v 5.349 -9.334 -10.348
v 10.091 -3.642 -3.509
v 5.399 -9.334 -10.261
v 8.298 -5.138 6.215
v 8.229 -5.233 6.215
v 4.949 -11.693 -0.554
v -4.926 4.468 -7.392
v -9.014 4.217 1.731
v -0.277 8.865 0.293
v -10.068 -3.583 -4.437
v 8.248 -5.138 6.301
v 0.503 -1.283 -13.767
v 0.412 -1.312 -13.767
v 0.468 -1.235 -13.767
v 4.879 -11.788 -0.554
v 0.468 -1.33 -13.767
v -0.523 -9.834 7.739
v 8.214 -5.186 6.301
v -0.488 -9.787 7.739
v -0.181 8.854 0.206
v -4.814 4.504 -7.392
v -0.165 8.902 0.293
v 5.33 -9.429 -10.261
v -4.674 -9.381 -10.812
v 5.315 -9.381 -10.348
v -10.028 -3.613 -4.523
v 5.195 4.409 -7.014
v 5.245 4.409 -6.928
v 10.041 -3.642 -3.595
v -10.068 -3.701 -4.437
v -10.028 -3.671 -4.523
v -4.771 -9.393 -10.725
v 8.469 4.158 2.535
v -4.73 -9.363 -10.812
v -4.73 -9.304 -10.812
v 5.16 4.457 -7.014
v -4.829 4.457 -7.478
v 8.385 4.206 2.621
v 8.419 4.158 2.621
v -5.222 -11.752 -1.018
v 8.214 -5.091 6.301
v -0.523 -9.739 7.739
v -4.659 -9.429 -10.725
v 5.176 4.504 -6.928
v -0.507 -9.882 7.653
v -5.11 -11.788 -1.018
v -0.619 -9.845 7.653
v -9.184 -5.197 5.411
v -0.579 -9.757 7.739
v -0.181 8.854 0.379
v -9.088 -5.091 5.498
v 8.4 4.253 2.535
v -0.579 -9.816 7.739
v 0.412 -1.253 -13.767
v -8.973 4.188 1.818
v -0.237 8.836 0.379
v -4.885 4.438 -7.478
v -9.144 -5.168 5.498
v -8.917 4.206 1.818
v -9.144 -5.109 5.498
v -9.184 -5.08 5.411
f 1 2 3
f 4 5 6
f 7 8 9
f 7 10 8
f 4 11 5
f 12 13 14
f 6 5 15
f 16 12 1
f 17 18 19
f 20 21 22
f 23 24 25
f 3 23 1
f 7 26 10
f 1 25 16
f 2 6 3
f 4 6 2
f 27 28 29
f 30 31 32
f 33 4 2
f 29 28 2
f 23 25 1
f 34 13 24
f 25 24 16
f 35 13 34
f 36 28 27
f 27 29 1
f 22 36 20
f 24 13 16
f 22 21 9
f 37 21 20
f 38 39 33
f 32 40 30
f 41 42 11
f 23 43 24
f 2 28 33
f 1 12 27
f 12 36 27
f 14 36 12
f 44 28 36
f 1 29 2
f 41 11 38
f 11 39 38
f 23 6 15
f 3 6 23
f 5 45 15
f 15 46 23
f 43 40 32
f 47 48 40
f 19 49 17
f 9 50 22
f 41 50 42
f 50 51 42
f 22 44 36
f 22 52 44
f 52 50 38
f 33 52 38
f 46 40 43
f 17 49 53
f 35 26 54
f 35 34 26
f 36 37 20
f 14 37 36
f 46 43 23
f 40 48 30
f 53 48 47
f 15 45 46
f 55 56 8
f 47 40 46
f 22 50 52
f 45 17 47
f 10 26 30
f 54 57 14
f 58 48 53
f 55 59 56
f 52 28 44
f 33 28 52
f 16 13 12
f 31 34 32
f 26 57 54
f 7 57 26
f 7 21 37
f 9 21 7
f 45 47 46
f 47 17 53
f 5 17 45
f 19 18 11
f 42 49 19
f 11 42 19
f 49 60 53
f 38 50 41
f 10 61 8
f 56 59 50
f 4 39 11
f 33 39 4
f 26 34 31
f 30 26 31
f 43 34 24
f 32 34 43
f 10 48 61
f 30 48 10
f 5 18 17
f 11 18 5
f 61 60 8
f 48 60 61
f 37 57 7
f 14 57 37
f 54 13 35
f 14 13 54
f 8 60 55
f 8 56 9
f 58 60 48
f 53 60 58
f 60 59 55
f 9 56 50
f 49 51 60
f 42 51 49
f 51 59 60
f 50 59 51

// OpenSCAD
// Auto-generated OpenSCAD file

    inner_points = 10*[[-0.9987270749614695, -0.364205811638524, -0.4436890860803185], [0.9991182313764295, -0.36420581163853794, -0.35087673806764436], [-0.4844601077687184, 0.4409094125179242, -0.7391869071989888], [-0.5140713889852709, -1.1693210357949793, -0.10178509095531102], [0.5144625454002312, 0.4409094125179172, -0.6927807331926518], [0.4848512641836786, -1.1693210357949864, -0.055378916948973976], [-0.8932613027512826, 0.41583146142721766, 0.17309193139693055], [-0.9103573839327088, -0.513835521363569, 0.5410960415871743], [0.8369234853688419, 0.41583146142720556, 0.25346978256078845], [0.8198274041874156, -0.5138355213635811, 0.6214738927510323], [-0.019620868100507078, 0.8806649528226049, 0.029278801883737618], [-0.0538130304633598, -0.9786690127589686, 0.7652870222642252], [-0.46897543145439324, -0.933375714707972, -1.0725044943214548], [0.5299472217145562, -0.9333757147079789, -1.0260983203151177], [0.04529153573835777, -0.12826049055152355, -1.3680023154401253]];

    outer_points = 10*[[-0.9998038282183614, -0.36459847125866063, -0.22466188312211807], [1.0001954063490741, -0.36459847125866063, -0.22291210322967533], [-0.499158278691538, 0.08842950542533667, -0.9623065713566289], [-0.500449760461467, -0.8176264479426579, 0.513857695058614], [0.5008413385921798, 0.08842950542533667, -0.9614316814104075], [0.4995498568222507, -0.8176264479426579, 0.5147325850048354], [-0.8658480427340112, 0.626154295547598, -0.20310260203452007], [-0.8665936800815331, 0.10304264696972326, 0.6491612345484268], [0.8662021019508204, 0.626154295547598, -0.20158724819663343], [0.8654564646032984, 0.10304264696972326, 0.6506765883863135], [0.0005498482821656634, 0.8877101198365354, -0.6284768434070501], [-0.0009414264128783963, -0.1585131773192141, 1.0760508297588436], [-0.4996455845307593, -1.2114785717593914, -0.4053157694550875], [0.5003540327529584, -1.2114785717593914, -0.4044408795088661], [0.0009999649960640952, -0.7584505950753941, -1.1429604576895982]];

    // Convex hull for inner set (I)
    module inner_hull() {
        hull() {
            for (p = inner_points) {
                translate(p) sphere(r=0.1);
            }
        }
    }

    // Convex hull for outer set (O) minus inner hull (O \ I)
    module outer_minus_inner() {
        difference() {
            hull() {
                for (p = outer_points) {
                    translate(p) sphere(r=0.1);
                }
            }
            inner_hull(); // Subtract inner hull
        }
    }

    // Convex hull for outer set (O) minus all translated inner hulls
    module outer_minus_AllTranslationInner() {
        difference() {
            hull() {
                for (p = outer_points) {
                    translate(p) sphere(r=0.1);
                }
            }
            hull() {
                translate([0,0,50]) inner_hull();
                translate([0,0,-50]) inner_hull();
            }; // Subtract translated inner hulls
        }
    }

    // Difference between outer_minus_inner and outer_minus_AllTranslationInner
    module outer_minus_inner_diff() {
        difference() {
            // Outer minus inner
            difference() {
                hull() {
                    for (p = outer_points) {
                        translate(p) sphere(r=0.1);
                    }
                }
                inner_hull();
            }

            // Subtract Outer minus AllTranslationInner
            difference() {
                hull() {
                    for (p = outer_points) {
                        translate(p) sphere(r=0.1);
                    }
                }
                hull() {
                    translate([0,0,50]) inner_hull();
                    translate([0,0,-50]) inner_hull();
                };
            }
        }
    }

    // Rendering all with colors applied
    color([1, 0, 0, 0.5]) inner_hull(); // Transparent red
    
